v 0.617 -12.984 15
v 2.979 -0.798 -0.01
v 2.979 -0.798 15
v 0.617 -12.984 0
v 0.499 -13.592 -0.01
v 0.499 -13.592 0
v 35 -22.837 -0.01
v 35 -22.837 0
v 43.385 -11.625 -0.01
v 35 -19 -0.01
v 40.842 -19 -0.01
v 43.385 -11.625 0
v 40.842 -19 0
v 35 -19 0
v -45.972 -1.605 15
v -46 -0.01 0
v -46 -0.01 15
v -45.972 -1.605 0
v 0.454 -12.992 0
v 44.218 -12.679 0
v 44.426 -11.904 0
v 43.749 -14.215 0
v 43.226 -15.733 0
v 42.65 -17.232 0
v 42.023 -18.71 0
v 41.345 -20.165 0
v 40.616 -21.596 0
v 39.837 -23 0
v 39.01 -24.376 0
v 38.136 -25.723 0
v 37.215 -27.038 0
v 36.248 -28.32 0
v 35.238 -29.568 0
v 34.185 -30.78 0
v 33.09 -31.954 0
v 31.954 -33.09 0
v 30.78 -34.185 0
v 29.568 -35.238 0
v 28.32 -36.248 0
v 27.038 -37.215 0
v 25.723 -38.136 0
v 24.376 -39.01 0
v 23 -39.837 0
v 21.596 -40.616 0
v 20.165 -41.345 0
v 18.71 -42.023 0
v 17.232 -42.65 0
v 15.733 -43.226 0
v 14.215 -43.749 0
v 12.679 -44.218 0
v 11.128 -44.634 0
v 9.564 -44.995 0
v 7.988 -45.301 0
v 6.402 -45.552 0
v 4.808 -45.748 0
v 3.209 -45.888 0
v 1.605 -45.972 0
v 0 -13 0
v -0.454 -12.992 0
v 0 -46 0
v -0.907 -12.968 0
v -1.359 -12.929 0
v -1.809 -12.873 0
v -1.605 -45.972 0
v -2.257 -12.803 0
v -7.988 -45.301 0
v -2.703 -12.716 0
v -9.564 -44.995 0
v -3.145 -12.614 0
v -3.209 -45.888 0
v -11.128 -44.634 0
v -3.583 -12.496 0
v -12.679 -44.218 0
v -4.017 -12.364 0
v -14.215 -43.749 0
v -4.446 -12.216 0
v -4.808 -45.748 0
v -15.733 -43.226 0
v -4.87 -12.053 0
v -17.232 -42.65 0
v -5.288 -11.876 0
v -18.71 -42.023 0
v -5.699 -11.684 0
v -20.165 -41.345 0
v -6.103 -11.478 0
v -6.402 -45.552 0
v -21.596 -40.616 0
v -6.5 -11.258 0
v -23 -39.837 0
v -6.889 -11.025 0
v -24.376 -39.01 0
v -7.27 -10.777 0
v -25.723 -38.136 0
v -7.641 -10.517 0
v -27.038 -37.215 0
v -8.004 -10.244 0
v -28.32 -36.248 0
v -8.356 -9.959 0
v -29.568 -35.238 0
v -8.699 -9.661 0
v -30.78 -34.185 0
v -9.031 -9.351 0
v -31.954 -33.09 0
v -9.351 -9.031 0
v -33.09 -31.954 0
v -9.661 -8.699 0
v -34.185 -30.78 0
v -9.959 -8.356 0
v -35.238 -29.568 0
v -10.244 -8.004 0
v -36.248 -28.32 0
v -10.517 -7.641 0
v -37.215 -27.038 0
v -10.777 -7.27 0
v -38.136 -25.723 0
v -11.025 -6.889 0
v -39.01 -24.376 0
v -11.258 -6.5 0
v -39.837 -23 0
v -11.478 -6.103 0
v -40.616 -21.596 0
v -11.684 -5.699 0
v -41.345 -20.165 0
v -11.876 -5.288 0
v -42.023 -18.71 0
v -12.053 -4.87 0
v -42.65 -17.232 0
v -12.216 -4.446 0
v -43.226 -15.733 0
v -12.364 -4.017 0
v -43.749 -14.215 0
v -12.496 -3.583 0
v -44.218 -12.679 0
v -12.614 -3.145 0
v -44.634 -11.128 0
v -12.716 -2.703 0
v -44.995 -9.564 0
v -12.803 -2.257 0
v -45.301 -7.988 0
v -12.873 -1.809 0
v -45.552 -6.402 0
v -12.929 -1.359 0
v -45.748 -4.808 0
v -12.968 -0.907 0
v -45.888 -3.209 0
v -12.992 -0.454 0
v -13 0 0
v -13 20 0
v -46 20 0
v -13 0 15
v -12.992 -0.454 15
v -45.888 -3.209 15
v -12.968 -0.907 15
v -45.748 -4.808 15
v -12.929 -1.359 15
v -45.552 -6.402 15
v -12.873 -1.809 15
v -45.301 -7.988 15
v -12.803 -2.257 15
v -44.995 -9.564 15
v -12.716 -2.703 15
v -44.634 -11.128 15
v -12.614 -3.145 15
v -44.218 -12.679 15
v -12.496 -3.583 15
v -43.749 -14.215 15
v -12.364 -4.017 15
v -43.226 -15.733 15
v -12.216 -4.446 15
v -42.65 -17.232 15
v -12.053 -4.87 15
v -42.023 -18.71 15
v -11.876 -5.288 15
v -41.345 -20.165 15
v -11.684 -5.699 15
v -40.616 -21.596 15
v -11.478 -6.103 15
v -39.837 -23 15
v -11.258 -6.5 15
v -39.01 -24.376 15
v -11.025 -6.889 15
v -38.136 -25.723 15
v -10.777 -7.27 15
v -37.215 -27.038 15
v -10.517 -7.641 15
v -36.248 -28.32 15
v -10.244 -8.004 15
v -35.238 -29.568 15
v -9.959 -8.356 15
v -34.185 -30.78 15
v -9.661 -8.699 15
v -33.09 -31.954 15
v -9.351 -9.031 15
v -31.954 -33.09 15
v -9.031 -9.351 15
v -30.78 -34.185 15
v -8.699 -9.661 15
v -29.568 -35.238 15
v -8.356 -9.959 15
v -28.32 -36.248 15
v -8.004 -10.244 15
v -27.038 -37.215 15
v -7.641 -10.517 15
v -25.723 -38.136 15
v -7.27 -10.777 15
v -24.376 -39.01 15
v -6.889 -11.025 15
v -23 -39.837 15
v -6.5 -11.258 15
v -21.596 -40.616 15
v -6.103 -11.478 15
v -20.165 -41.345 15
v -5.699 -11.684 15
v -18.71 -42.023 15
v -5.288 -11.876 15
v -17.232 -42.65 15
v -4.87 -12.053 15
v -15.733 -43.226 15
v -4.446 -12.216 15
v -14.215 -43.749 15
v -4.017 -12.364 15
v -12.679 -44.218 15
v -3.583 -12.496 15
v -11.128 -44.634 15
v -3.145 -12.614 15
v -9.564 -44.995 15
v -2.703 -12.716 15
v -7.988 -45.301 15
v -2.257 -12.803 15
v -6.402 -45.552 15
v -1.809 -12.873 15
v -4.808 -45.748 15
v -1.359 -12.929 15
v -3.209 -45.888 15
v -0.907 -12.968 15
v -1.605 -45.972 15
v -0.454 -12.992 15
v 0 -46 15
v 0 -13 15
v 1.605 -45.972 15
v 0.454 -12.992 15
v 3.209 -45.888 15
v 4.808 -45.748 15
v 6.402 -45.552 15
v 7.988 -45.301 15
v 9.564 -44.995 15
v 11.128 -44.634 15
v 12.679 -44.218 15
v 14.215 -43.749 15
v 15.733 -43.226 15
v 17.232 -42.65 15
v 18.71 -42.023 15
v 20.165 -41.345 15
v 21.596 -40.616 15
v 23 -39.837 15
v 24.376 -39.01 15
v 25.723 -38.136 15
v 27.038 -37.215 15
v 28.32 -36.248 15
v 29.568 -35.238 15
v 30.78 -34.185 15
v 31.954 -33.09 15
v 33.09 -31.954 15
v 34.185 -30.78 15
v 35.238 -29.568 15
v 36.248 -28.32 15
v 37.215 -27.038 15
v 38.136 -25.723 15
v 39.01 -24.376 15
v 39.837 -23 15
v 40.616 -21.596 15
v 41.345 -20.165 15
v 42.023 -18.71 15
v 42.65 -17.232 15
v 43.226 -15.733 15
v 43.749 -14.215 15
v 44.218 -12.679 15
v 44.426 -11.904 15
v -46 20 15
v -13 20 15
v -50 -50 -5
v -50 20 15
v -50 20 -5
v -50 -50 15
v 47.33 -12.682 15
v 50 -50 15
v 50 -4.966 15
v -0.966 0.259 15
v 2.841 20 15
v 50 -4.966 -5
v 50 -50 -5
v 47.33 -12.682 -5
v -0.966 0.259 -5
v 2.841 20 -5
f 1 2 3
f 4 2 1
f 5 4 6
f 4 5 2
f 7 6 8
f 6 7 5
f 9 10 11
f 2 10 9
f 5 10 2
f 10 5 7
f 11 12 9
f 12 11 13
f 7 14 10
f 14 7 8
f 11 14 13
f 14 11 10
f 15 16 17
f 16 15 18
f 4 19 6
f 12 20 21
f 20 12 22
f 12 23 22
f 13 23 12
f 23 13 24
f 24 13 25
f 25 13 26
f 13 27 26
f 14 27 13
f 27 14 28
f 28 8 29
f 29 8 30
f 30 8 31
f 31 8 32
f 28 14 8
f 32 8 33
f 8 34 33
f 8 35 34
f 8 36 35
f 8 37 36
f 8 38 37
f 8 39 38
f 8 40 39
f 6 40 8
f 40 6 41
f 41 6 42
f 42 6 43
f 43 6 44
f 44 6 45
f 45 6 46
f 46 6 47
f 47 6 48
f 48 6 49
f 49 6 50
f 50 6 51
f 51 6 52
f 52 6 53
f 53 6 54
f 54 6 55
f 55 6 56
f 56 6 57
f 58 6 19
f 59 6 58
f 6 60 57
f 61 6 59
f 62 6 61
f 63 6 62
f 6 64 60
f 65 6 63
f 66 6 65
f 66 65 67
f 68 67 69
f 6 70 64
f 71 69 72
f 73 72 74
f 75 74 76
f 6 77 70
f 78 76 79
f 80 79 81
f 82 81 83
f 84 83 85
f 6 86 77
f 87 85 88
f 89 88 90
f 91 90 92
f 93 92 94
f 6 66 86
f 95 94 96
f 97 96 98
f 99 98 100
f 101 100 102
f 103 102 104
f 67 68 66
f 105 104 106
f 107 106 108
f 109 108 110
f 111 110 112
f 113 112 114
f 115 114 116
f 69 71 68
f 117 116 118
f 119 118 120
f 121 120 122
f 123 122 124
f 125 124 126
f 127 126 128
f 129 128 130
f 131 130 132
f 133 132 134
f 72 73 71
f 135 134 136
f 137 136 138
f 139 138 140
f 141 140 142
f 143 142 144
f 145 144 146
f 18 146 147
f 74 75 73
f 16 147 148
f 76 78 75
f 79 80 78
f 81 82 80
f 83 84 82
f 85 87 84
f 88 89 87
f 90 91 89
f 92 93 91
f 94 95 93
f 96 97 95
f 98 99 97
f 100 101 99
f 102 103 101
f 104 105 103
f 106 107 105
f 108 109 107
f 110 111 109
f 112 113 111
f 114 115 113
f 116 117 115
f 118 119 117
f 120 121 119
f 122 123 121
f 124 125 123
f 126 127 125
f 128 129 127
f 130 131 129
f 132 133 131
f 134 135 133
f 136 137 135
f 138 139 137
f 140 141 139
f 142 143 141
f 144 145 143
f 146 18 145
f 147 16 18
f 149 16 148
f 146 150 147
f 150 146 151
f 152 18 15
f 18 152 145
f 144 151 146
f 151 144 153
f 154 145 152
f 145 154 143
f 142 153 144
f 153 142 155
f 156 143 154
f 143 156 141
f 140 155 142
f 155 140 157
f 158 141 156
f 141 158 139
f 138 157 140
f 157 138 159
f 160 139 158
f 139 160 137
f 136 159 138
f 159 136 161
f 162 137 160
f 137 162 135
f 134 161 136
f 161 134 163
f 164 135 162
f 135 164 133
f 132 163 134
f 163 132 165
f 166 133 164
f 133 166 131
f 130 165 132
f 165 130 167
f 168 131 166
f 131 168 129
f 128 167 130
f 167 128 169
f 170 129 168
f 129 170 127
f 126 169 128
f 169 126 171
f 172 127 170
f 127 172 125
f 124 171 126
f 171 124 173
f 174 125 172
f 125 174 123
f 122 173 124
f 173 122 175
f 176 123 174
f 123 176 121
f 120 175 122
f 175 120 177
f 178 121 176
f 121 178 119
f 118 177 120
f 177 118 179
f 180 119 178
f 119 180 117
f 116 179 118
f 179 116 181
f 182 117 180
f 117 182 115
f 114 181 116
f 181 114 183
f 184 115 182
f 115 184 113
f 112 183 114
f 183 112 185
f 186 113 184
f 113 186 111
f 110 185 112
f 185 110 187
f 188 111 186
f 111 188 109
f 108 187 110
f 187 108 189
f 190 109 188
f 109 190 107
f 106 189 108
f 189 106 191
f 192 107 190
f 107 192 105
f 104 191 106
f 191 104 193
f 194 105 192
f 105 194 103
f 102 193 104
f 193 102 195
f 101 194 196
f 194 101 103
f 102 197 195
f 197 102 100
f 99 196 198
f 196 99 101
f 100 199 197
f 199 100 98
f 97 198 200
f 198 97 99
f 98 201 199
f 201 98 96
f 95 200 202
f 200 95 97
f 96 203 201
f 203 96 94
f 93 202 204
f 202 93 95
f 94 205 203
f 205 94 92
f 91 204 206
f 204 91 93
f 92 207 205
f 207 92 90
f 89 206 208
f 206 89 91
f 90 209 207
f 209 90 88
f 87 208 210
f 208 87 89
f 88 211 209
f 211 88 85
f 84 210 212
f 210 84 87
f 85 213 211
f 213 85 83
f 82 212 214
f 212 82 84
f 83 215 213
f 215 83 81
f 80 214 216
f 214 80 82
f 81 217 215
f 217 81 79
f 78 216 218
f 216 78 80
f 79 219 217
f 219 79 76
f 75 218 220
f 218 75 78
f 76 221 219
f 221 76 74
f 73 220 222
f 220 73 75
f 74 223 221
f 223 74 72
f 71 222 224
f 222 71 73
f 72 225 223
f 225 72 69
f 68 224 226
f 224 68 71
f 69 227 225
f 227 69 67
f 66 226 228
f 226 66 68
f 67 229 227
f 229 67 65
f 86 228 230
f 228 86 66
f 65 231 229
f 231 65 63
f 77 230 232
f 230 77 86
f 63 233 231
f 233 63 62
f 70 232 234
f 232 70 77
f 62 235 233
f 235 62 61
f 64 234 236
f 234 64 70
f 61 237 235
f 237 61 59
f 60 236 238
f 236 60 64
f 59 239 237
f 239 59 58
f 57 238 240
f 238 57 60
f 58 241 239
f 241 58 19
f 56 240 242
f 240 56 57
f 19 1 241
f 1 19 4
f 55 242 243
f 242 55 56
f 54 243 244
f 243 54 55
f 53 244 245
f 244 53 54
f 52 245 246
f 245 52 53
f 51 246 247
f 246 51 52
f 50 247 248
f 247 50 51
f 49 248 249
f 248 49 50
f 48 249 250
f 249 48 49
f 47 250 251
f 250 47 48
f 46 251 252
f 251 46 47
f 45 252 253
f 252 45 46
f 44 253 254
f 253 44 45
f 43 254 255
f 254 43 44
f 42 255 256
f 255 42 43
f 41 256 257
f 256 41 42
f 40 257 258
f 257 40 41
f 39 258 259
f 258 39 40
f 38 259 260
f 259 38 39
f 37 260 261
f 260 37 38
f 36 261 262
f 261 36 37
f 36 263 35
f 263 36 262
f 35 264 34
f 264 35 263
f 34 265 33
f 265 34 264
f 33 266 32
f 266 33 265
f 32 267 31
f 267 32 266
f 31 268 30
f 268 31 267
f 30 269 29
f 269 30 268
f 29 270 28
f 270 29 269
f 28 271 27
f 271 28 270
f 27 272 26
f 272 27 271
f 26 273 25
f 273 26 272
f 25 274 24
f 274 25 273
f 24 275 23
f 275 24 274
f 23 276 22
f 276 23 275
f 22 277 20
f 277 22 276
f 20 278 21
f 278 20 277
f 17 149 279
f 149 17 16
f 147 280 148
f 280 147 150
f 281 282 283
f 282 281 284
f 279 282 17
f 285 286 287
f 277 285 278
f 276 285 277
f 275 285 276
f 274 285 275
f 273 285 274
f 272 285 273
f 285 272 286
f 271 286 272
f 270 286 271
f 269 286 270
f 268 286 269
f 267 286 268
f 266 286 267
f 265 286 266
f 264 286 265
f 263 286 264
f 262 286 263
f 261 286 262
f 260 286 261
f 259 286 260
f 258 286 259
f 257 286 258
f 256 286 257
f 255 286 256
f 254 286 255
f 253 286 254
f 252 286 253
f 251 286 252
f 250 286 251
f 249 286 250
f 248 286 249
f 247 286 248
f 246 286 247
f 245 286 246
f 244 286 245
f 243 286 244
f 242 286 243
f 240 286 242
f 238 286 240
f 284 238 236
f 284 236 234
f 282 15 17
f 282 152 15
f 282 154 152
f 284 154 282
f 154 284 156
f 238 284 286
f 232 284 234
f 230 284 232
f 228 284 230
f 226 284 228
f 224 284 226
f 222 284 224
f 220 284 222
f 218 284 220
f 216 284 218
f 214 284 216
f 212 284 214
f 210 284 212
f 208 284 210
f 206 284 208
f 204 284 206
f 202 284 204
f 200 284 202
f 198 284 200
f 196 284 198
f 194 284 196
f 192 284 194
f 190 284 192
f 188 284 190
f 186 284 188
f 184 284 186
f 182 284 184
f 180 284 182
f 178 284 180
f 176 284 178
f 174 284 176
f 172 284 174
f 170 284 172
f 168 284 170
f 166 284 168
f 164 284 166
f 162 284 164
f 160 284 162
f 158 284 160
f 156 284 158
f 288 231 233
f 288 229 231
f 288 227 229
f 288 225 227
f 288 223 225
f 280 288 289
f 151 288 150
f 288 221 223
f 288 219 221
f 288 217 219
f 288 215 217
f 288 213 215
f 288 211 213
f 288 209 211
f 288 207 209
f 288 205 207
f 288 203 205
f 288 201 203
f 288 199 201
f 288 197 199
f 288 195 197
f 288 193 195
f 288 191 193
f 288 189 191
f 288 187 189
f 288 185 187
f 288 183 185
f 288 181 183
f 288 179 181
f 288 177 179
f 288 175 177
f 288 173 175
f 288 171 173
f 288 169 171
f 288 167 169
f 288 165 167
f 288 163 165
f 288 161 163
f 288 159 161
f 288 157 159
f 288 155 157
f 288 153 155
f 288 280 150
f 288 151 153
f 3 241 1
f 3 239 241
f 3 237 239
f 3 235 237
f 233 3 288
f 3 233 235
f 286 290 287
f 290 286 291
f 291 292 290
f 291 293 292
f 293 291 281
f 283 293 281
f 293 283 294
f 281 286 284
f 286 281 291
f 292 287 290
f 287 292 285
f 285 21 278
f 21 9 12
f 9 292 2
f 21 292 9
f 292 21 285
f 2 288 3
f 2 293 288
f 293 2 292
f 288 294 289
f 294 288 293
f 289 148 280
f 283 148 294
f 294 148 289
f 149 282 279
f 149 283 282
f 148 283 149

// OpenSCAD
// $fa = 1;
// $fs = 0.4;



$fn = $preview ? 24 : 180;




    module wedge(w1=80,dw=15,l=210,h=55){
        polyhedron(
            points=[[0,0,0], [w1,0,0], [w1-dw,l,0], [dw,l,0], [dw,l,h], [w1-dw,l,h]],
            faces=[[0,1,2,3],[5,4,3,2],[0,4,5,1],[0,3,4],[5,2,1]]
        );
    }
   
    module bar(w=80,dw=15,l=210,h1=0,h2=50){
        polyhedron(
            points=[[0,0,0], [w,0,0], [w-dw,l,h1], [dw,l,h1], [0,0,h2 ], [w,0,h2], [w-dw,l,h2], [dw,l,h2] ],
            faces=[
                [0,1,2,3],  // bottom
                [4,5,1,0],  // front
                [7,6,5,4],  // top
                [5,6,2,1],  // right
                [6,7,3,2],  // back
                [7,4,0,3]] // left
        );
    }



difference(){
    translate([0,0,5])cube([100,100,20], center=true);


union(){
    path_radius = 46;
    path_diameter = 33;
    translate ([0,0,0])rotate([0,0,180])rotate_extrude(angle=180){
        translate([path_radius - path_diameter, 0])square(path_diameter);
    };
    #translate([0,0,-0.01])difference(){
        rotate([0,0,-15])translate([-11,200,90])rotate([0,180,180])bar(w=70,h1=55,h2=90,l=213);
        translate([35,-29,-400])cube([10,10,1000]);
    };
    
            
 translate([-50+(33/2)+4,50-0.01,25])cube([33,100,50], center = true);   
 
        };  
        rotate([0,0,-15])translate([64,210,-10.001])rotate([0,0,180])bar(h2=60);  
      translate([0,120,0])cube([200,200,200],center = true);  
};

       
